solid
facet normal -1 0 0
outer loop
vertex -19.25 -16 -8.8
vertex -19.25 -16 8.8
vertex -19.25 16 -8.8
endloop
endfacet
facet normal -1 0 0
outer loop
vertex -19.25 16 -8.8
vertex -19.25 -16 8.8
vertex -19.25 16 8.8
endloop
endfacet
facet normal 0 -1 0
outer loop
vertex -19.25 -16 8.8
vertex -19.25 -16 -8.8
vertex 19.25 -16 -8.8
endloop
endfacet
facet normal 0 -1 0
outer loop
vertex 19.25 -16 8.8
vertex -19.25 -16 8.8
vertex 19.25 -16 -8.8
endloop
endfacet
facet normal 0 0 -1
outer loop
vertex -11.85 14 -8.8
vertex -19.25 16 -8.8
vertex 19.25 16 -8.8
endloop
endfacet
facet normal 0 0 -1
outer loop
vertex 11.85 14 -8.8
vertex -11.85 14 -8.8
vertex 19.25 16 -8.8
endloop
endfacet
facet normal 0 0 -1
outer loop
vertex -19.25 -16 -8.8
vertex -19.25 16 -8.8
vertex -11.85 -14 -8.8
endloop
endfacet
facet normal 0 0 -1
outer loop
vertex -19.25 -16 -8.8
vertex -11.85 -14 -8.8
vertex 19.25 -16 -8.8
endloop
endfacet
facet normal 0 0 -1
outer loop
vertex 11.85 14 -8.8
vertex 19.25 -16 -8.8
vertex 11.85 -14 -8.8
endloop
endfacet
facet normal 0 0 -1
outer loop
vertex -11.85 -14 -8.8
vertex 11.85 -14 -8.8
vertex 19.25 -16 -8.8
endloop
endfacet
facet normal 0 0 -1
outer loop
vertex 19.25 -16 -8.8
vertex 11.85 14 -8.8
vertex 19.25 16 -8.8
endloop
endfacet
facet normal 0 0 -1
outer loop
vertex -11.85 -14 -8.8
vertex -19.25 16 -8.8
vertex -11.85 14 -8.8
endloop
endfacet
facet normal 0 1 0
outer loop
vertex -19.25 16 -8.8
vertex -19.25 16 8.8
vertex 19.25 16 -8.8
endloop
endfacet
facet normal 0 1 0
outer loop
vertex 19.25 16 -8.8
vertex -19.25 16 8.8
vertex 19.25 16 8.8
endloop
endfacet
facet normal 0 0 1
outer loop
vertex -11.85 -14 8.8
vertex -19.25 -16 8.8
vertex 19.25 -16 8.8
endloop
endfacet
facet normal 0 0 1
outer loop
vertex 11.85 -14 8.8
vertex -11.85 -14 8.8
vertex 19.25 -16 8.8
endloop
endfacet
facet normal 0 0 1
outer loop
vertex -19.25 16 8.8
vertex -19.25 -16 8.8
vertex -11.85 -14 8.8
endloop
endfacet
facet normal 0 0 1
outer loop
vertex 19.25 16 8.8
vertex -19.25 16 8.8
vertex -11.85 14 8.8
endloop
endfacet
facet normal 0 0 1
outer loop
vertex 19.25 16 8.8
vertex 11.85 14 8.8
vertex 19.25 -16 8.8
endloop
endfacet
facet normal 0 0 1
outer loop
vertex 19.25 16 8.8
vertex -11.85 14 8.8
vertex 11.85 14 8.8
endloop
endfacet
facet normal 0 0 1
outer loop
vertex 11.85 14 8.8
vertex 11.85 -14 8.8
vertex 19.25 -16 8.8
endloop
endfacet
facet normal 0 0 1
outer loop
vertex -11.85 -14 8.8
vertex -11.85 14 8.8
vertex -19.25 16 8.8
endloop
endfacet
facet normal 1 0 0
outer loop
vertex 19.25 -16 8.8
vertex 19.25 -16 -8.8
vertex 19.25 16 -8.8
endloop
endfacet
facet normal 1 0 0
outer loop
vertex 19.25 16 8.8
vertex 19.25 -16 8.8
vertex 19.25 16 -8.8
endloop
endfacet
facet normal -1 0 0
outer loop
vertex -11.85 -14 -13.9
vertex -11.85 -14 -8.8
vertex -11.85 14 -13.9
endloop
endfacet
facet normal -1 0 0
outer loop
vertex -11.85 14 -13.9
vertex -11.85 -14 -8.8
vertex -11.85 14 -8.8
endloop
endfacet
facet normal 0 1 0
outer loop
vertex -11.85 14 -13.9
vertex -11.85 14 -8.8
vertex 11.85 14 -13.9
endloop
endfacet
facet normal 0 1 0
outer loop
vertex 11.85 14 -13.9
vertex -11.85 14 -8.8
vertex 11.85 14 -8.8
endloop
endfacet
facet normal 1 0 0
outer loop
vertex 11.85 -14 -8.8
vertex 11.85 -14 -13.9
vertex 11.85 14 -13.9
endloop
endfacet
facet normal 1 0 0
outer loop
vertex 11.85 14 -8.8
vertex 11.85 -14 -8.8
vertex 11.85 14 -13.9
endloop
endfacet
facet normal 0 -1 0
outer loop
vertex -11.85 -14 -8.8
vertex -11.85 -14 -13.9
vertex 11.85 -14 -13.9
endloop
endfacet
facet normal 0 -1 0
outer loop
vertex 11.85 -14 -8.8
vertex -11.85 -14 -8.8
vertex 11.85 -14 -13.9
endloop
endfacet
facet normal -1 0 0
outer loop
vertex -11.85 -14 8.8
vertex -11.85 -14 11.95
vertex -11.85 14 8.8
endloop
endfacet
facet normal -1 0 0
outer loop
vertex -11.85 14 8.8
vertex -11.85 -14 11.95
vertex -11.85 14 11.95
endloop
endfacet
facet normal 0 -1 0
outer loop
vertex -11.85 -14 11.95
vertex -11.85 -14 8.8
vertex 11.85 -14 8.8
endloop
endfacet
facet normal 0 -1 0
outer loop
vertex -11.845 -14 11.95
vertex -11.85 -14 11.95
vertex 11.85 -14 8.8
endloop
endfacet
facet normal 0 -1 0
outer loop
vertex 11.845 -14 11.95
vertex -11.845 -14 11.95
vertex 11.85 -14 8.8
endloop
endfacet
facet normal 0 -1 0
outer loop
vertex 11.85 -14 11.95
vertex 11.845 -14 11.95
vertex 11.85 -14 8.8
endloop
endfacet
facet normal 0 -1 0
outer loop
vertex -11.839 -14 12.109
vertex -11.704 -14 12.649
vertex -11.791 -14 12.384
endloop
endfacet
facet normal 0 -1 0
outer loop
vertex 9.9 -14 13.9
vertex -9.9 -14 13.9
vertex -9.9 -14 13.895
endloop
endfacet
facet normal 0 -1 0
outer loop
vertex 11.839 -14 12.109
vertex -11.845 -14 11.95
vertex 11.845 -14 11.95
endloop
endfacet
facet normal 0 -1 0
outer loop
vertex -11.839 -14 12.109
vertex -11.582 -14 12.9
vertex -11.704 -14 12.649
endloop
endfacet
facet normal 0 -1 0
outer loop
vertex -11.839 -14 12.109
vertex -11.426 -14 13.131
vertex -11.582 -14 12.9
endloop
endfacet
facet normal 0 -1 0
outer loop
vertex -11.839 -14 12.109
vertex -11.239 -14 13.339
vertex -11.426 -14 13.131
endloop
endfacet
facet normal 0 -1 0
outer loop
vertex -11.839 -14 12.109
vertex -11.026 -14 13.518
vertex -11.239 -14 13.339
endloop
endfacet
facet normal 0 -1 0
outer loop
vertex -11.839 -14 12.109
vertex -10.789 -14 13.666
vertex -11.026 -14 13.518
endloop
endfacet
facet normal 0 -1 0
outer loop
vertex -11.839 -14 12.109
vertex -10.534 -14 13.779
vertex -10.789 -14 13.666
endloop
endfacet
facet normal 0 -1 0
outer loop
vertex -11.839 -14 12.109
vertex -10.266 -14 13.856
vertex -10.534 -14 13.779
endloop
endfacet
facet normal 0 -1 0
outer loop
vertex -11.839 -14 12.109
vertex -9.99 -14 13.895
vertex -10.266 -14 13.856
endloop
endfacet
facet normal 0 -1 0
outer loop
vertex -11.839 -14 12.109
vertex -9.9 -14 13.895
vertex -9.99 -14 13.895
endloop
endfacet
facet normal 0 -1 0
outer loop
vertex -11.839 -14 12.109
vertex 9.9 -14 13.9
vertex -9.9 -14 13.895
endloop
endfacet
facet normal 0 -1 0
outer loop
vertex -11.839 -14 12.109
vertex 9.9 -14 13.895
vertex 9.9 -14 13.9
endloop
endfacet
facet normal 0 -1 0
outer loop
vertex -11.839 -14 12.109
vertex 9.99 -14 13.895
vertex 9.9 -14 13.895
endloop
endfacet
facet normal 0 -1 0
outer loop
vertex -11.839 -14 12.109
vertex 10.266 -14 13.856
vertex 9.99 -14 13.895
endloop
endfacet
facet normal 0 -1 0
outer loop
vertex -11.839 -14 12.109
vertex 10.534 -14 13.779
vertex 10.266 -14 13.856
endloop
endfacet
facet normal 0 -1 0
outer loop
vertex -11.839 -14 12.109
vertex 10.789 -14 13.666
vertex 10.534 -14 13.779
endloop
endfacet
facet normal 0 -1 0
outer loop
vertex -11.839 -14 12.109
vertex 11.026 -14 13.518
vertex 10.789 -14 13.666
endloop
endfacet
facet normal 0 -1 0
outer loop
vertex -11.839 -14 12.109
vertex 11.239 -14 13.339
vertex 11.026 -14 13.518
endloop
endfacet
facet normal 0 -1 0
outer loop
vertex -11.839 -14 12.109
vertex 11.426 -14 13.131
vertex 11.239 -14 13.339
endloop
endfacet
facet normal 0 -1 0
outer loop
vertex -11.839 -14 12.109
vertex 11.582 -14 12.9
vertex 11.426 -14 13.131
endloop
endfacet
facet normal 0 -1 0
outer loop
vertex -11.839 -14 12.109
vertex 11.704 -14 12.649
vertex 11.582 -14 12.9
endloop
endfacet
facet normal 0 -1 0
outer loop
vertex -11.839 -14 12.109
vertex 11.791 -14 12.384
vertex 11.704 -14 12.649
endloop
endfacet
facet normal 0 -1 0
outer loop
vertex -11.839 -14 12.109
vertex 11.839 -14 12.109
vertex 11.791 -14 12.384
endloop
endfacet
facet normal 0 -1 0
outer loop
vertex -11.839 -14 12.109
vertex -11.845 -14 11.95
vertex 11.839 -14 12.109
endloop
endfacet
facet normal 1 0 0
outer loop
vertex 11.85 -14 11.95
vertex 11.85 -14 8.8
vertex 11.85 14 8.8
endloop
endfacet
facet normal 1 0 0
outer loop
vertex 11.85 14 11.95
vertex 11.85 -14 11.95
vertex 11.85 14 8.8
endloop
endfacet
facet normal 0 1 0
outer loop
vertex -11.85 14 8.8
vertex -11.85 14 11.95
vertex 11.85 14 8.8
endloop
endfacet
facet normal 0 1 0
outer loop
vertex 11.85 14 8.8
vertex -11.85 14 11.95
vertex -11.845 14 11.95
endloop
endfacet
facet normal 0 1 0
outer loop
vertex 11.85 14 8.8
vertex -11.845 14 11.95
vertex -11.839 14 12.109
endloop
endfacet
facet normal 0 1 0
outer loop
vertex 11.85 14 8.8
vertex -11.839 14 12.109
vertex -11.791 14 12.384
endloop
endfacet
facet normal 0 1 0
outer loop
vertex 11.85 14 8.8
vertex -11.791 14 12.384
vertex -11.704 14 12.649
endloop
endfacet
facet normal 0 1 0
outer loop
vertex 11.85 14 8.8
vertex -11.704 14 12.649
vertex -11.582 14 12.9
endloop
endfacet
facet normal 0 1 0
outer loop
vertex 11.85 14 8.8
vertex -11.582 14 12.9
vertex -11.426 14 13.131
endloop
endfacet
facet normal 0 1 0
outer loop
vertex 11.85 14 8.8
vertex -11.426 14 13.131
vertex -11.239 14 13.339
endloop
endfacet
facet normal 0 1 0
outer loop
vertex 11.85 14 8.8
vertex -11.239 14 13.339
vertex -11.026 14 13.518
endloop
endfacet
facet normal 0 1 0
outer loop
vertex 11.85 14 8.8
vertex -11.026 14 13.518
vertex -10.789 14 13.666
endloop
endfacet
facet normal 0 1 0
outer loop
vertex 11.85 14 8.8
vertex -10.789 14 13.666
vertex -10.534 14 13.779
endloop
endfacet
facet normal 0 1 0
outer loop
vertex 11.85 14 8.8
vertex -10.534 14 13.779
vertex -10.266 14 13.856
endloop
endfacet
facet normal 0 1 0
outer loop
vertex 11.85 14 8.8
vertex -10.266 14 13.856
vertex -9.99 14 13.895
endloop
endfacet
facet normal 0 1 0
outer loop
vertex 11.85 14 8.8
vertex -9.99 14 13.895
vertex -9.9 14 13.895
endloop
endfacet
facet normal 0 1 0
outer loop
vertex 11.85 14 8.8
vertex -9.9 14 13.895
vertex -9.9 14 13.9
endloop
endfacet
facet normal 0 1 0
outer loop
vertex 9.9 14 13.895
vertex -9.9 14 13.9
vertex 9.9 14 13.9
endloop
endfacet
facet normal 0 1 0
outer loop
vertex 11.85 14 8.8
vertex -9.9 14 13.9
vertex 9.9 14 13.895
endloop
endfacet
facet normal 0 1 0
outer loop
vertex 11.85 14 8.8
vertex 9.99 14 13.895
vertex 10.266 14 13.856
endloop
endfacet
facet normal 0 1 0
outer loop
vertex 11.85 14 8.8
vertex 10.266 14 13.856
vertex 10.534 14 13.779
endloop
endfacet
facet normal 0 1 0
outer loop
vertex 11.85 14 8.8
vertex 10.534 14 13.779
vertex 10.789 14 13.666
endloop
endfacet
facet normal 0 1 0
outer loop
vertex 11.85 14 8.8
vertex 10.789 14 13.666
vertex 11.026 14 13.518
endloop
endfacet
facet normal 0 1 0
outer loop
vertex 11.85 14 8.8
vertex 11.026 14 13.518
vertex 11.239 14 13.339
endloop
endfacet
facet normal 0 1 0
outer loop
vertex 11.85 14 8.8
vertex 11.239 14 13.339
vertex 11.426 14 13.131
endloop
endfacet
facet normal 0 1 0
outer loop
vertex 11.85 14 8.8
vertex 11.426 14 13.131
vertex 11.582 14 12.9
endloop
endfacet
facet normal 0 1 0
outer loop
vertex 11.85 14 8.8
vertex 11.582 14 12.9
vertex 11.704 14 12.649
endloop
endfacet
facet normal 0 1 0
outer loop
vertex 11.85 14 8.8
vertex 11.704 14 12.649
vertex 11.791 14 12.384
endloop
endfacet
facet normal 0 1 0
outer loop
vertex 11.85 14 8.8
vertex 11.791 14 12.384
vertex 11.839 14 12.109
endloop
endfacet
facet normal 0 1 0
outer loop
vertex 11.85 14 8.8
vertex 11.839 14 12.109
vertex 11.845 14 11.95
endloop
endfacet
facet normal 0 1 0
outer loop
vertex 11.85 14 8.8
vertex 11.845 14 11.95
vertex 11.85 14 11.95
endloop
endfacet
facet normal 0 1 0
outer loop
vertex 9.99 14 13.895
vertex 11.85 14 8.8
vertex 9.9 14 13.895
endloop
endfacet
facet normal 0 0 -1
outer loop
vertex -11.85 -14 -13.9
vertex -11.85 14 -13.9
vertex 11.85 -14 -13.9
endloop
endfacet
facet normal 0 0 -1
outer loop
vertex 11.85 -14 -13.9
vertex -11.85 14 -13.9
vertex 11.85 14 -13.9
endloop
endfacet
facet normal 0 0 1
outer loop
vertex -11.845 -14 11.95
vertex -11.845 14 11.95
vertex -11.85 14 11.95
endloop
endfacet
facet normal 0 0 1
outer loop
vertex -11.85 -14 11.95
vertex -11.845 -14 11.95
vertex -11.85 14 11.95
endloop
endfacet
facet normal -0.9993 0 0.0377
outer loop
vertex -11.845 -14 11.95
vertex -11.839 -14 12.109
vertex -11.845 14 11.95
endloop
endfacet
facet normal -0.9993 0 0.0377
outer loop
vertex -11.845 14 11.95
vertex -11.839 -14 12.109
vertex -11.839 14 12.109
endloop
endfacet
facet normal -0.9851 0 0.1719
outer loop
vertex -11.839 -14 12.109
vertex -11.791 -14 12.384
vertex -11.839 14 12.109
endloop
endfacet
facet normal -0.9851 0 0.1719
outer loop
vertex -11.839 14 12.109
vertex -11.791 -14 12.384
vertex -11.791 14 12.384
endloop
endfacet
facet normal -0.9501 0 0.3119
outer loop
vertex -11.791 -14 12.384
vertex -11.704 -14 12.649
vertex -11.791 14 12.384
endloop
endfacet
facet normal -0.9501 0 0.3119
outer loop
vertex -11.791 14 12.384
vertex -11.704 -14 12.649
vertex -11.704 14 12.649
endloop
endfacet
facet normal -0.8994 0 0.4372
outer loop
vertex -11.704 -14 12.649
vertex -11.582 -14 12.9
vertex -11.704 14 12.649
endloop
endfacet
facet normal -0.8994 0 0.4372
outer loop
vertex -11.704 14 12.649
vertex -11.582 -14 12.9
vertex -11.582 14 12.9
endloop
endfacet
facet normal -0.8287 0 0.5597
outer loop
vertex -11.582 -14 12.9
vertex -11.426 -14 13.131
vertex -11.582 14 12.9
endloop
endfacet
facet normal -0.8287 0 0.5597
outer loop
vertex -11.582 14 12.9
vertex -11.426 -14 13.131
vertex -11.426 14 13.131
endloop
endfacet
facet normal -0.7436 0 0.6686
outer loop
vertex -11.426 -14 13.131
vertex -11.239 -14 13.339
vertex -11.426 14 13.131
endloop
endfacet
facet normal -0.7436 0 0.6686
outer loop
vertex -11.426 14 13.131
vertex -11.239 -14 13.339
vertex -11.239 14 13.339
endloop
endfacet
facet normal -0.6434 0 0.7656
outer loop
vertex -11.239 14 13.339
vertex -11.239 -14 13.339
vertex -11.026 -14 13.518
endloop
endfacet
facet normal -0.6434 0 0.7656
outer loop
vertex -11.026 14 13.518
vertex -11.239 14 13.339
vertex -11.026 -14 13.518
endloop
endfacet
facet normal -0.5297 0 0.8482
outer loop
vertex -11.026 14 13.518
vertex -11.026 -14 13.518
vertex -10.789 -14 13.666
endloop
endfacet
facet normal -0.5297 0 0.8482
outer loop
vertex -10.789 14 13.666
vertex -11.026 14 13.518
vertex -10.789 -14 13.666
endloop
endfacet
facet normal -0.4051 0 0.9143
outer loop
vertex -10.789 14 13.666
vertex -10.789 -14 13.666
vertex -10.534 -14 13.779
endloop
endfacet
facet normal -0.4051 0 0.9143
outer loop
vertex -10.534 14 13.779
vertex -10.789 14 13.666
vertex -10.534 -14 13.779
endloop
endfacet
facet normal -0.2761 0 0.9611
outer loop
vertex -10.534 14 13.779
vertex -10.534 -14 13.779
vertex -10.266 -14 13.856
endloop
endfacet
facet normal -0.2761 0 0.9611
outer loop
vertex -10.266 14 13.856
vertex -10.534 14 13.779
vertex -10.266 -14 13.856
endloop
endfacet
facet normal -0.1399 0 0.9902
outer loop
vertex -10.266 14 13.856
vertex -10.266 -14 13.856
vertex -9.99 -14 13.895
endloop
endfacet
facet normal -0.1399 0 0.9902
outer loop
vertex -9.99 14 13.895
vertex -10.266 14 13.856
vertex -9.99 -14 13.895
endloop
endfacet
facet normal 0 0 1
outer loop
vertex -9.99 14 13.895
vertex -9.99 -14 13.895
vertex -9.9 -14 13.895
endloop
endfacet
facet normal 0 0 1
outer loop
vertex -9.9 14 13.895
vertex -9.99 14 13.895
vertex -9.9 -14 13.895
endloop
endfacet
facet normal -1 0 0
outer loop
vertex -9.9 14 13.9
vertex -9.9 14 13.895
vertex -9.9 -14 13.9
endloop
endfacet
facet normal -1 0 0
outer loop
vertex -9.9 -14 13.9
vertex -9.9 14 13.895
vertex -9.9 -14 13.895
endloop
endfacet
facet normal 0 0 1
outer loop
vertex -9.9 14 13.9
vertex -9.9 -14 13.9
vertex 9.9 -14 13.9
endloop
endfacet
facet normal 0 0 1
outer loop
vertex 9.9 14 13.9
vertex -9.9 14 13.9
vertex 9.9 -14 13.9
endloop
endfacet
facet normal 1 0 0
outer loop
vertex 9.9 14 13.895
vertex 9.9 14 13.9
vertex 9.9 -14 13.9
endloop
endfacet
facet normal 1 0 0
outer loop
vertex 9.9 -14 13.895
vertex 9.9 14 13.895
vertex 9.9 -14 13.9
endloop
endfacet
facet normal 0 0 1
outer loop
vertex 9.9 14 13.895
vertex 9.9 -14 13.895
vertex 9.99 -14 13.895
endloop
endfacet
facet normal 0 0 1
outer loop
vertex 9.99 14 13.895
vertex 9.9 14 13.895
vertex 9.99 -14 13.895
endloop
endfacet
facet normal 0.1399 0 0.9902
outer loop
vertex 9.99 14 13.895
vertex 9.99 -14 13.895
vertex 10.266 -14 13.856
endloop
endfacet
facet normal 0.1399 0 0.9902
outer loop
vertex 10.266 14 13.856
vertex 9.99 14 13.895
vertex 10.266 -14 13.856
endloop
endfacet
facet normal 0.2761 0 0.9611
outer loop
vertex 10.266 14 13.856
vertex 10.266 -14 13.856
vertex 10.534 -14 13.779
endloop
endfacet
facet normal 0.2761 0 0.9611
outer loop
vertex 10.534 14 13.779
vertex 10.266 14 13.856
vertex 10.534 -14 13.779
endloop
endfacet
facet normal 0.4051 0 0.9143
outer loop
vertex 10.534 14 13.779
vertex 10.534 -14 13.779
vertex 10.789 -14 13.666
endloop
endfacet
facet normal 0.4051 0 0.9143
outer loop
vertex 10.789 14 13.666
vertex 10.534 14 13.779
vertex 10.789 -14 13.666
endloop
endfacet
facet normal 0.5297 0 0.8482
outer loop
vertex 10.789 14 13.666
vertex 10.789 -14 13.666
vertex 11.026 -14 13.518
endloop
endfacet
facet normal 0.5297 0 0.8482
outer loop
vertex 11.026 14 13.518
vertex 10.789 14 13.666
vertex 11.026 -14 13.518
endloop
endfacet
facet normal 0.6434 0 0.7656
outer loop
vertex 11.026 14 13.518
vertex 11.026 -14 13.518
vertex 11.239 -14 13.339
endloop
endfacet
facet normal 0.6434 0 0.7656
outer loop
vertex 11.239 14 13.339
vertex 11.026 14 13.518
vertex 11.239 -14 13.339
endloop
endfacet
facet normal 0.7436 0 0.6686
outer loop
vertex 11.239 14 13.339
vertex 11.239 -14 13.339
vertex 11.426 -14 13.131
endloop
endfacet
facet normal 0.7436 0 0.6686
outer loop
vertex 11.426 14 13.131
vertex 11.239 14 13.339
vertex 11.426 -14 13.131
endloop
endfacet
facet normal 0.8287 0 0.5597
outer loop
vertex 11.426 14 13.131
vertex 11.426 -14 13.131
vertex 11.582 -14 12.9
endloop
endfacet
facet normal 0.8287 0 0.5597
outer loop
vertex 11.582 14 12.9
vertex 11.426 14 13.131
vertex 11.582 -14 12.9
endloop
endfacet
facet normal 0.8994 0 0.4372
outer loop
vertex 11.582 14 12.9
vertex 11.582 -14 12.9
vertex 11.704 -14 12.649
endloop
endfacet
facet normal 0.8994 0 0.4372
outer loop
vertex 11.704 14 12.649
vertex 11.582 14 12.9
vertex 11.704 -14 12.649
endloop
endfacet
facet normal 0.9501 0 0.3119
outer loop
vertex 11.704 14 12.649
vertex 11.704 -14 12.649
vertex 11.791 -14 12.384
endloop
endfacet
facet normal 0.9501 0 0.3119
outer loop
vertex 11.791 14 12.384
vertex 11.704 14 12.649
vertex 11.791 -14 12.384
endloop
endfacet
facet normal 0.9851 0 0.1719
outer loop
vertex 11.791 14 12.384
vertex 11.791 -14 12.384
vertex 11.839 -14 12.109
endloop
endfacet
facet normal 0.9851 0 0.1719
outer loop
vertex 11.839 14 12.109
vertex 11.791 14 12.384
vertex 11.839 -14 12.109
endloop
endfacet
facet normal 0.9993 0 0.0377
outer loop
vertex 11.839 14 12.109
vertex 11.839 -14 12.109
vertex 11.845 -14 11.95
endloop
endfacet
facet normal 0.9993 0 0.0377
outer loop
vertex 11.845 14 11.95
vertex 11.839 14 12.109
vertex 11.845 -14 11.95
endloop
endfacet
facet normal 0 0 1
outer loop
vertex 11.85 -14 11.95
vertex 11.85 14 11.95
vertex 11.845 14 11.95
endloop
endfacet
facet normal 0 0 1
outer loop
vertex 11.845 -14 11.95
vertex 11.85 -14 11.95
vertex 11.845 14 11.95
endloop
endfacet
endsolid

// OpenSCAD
$fn=50;
pad = 0.1; // Padding to maintain manifold
box_l = 23.7; // Length
box_w = 28; // Width
box_h = 27.8; // Height
round_r = 2; // Radius of round
smooth = 45; // Number of facets of rounding cylinder

union(){
difference() {
// bobin
difference() {
color("brown")
cube([box_l, box_w, box_h], center = true);

translate([-box_l/2+round_r, 0, box_h/2-round_r]) {
		difference() {
			translate([-round_r-pad, 0, round_r+pad])
color("brown")
				cube([round_r*2+pad, box_w+2*pad, round_r*2+pad], center = true);
			rotate(a=[0,90,90])
color("brown")
				cylinder(box_w+4*pad,round_r,round_r,center=true,$fn=smooth);
		}
	}
	translate([box_l/2-round_r, 0, box_h/2-round_r]) {
		difference() {
			translate([round_r+pad, 0, round_r+pad])
color("brown")
				cube([round_r*2+pad, box_w+2*pad, round_r*2+pad], center = true);
			rotate(a=[0,90,90])
color("brown")
				cylinder(box_w+4*pad,round_r,round_r,center=true,$fn=smooth);
		}
	}

}

// bobin core
translate([0,0,0]) {
color("brown") cube([13.3,28,13.60], center=true);
}
}

// laminates
translate([0,0,0]) {
color("Silver")
cube([38.5,32,17.6], center=true);
}

}
